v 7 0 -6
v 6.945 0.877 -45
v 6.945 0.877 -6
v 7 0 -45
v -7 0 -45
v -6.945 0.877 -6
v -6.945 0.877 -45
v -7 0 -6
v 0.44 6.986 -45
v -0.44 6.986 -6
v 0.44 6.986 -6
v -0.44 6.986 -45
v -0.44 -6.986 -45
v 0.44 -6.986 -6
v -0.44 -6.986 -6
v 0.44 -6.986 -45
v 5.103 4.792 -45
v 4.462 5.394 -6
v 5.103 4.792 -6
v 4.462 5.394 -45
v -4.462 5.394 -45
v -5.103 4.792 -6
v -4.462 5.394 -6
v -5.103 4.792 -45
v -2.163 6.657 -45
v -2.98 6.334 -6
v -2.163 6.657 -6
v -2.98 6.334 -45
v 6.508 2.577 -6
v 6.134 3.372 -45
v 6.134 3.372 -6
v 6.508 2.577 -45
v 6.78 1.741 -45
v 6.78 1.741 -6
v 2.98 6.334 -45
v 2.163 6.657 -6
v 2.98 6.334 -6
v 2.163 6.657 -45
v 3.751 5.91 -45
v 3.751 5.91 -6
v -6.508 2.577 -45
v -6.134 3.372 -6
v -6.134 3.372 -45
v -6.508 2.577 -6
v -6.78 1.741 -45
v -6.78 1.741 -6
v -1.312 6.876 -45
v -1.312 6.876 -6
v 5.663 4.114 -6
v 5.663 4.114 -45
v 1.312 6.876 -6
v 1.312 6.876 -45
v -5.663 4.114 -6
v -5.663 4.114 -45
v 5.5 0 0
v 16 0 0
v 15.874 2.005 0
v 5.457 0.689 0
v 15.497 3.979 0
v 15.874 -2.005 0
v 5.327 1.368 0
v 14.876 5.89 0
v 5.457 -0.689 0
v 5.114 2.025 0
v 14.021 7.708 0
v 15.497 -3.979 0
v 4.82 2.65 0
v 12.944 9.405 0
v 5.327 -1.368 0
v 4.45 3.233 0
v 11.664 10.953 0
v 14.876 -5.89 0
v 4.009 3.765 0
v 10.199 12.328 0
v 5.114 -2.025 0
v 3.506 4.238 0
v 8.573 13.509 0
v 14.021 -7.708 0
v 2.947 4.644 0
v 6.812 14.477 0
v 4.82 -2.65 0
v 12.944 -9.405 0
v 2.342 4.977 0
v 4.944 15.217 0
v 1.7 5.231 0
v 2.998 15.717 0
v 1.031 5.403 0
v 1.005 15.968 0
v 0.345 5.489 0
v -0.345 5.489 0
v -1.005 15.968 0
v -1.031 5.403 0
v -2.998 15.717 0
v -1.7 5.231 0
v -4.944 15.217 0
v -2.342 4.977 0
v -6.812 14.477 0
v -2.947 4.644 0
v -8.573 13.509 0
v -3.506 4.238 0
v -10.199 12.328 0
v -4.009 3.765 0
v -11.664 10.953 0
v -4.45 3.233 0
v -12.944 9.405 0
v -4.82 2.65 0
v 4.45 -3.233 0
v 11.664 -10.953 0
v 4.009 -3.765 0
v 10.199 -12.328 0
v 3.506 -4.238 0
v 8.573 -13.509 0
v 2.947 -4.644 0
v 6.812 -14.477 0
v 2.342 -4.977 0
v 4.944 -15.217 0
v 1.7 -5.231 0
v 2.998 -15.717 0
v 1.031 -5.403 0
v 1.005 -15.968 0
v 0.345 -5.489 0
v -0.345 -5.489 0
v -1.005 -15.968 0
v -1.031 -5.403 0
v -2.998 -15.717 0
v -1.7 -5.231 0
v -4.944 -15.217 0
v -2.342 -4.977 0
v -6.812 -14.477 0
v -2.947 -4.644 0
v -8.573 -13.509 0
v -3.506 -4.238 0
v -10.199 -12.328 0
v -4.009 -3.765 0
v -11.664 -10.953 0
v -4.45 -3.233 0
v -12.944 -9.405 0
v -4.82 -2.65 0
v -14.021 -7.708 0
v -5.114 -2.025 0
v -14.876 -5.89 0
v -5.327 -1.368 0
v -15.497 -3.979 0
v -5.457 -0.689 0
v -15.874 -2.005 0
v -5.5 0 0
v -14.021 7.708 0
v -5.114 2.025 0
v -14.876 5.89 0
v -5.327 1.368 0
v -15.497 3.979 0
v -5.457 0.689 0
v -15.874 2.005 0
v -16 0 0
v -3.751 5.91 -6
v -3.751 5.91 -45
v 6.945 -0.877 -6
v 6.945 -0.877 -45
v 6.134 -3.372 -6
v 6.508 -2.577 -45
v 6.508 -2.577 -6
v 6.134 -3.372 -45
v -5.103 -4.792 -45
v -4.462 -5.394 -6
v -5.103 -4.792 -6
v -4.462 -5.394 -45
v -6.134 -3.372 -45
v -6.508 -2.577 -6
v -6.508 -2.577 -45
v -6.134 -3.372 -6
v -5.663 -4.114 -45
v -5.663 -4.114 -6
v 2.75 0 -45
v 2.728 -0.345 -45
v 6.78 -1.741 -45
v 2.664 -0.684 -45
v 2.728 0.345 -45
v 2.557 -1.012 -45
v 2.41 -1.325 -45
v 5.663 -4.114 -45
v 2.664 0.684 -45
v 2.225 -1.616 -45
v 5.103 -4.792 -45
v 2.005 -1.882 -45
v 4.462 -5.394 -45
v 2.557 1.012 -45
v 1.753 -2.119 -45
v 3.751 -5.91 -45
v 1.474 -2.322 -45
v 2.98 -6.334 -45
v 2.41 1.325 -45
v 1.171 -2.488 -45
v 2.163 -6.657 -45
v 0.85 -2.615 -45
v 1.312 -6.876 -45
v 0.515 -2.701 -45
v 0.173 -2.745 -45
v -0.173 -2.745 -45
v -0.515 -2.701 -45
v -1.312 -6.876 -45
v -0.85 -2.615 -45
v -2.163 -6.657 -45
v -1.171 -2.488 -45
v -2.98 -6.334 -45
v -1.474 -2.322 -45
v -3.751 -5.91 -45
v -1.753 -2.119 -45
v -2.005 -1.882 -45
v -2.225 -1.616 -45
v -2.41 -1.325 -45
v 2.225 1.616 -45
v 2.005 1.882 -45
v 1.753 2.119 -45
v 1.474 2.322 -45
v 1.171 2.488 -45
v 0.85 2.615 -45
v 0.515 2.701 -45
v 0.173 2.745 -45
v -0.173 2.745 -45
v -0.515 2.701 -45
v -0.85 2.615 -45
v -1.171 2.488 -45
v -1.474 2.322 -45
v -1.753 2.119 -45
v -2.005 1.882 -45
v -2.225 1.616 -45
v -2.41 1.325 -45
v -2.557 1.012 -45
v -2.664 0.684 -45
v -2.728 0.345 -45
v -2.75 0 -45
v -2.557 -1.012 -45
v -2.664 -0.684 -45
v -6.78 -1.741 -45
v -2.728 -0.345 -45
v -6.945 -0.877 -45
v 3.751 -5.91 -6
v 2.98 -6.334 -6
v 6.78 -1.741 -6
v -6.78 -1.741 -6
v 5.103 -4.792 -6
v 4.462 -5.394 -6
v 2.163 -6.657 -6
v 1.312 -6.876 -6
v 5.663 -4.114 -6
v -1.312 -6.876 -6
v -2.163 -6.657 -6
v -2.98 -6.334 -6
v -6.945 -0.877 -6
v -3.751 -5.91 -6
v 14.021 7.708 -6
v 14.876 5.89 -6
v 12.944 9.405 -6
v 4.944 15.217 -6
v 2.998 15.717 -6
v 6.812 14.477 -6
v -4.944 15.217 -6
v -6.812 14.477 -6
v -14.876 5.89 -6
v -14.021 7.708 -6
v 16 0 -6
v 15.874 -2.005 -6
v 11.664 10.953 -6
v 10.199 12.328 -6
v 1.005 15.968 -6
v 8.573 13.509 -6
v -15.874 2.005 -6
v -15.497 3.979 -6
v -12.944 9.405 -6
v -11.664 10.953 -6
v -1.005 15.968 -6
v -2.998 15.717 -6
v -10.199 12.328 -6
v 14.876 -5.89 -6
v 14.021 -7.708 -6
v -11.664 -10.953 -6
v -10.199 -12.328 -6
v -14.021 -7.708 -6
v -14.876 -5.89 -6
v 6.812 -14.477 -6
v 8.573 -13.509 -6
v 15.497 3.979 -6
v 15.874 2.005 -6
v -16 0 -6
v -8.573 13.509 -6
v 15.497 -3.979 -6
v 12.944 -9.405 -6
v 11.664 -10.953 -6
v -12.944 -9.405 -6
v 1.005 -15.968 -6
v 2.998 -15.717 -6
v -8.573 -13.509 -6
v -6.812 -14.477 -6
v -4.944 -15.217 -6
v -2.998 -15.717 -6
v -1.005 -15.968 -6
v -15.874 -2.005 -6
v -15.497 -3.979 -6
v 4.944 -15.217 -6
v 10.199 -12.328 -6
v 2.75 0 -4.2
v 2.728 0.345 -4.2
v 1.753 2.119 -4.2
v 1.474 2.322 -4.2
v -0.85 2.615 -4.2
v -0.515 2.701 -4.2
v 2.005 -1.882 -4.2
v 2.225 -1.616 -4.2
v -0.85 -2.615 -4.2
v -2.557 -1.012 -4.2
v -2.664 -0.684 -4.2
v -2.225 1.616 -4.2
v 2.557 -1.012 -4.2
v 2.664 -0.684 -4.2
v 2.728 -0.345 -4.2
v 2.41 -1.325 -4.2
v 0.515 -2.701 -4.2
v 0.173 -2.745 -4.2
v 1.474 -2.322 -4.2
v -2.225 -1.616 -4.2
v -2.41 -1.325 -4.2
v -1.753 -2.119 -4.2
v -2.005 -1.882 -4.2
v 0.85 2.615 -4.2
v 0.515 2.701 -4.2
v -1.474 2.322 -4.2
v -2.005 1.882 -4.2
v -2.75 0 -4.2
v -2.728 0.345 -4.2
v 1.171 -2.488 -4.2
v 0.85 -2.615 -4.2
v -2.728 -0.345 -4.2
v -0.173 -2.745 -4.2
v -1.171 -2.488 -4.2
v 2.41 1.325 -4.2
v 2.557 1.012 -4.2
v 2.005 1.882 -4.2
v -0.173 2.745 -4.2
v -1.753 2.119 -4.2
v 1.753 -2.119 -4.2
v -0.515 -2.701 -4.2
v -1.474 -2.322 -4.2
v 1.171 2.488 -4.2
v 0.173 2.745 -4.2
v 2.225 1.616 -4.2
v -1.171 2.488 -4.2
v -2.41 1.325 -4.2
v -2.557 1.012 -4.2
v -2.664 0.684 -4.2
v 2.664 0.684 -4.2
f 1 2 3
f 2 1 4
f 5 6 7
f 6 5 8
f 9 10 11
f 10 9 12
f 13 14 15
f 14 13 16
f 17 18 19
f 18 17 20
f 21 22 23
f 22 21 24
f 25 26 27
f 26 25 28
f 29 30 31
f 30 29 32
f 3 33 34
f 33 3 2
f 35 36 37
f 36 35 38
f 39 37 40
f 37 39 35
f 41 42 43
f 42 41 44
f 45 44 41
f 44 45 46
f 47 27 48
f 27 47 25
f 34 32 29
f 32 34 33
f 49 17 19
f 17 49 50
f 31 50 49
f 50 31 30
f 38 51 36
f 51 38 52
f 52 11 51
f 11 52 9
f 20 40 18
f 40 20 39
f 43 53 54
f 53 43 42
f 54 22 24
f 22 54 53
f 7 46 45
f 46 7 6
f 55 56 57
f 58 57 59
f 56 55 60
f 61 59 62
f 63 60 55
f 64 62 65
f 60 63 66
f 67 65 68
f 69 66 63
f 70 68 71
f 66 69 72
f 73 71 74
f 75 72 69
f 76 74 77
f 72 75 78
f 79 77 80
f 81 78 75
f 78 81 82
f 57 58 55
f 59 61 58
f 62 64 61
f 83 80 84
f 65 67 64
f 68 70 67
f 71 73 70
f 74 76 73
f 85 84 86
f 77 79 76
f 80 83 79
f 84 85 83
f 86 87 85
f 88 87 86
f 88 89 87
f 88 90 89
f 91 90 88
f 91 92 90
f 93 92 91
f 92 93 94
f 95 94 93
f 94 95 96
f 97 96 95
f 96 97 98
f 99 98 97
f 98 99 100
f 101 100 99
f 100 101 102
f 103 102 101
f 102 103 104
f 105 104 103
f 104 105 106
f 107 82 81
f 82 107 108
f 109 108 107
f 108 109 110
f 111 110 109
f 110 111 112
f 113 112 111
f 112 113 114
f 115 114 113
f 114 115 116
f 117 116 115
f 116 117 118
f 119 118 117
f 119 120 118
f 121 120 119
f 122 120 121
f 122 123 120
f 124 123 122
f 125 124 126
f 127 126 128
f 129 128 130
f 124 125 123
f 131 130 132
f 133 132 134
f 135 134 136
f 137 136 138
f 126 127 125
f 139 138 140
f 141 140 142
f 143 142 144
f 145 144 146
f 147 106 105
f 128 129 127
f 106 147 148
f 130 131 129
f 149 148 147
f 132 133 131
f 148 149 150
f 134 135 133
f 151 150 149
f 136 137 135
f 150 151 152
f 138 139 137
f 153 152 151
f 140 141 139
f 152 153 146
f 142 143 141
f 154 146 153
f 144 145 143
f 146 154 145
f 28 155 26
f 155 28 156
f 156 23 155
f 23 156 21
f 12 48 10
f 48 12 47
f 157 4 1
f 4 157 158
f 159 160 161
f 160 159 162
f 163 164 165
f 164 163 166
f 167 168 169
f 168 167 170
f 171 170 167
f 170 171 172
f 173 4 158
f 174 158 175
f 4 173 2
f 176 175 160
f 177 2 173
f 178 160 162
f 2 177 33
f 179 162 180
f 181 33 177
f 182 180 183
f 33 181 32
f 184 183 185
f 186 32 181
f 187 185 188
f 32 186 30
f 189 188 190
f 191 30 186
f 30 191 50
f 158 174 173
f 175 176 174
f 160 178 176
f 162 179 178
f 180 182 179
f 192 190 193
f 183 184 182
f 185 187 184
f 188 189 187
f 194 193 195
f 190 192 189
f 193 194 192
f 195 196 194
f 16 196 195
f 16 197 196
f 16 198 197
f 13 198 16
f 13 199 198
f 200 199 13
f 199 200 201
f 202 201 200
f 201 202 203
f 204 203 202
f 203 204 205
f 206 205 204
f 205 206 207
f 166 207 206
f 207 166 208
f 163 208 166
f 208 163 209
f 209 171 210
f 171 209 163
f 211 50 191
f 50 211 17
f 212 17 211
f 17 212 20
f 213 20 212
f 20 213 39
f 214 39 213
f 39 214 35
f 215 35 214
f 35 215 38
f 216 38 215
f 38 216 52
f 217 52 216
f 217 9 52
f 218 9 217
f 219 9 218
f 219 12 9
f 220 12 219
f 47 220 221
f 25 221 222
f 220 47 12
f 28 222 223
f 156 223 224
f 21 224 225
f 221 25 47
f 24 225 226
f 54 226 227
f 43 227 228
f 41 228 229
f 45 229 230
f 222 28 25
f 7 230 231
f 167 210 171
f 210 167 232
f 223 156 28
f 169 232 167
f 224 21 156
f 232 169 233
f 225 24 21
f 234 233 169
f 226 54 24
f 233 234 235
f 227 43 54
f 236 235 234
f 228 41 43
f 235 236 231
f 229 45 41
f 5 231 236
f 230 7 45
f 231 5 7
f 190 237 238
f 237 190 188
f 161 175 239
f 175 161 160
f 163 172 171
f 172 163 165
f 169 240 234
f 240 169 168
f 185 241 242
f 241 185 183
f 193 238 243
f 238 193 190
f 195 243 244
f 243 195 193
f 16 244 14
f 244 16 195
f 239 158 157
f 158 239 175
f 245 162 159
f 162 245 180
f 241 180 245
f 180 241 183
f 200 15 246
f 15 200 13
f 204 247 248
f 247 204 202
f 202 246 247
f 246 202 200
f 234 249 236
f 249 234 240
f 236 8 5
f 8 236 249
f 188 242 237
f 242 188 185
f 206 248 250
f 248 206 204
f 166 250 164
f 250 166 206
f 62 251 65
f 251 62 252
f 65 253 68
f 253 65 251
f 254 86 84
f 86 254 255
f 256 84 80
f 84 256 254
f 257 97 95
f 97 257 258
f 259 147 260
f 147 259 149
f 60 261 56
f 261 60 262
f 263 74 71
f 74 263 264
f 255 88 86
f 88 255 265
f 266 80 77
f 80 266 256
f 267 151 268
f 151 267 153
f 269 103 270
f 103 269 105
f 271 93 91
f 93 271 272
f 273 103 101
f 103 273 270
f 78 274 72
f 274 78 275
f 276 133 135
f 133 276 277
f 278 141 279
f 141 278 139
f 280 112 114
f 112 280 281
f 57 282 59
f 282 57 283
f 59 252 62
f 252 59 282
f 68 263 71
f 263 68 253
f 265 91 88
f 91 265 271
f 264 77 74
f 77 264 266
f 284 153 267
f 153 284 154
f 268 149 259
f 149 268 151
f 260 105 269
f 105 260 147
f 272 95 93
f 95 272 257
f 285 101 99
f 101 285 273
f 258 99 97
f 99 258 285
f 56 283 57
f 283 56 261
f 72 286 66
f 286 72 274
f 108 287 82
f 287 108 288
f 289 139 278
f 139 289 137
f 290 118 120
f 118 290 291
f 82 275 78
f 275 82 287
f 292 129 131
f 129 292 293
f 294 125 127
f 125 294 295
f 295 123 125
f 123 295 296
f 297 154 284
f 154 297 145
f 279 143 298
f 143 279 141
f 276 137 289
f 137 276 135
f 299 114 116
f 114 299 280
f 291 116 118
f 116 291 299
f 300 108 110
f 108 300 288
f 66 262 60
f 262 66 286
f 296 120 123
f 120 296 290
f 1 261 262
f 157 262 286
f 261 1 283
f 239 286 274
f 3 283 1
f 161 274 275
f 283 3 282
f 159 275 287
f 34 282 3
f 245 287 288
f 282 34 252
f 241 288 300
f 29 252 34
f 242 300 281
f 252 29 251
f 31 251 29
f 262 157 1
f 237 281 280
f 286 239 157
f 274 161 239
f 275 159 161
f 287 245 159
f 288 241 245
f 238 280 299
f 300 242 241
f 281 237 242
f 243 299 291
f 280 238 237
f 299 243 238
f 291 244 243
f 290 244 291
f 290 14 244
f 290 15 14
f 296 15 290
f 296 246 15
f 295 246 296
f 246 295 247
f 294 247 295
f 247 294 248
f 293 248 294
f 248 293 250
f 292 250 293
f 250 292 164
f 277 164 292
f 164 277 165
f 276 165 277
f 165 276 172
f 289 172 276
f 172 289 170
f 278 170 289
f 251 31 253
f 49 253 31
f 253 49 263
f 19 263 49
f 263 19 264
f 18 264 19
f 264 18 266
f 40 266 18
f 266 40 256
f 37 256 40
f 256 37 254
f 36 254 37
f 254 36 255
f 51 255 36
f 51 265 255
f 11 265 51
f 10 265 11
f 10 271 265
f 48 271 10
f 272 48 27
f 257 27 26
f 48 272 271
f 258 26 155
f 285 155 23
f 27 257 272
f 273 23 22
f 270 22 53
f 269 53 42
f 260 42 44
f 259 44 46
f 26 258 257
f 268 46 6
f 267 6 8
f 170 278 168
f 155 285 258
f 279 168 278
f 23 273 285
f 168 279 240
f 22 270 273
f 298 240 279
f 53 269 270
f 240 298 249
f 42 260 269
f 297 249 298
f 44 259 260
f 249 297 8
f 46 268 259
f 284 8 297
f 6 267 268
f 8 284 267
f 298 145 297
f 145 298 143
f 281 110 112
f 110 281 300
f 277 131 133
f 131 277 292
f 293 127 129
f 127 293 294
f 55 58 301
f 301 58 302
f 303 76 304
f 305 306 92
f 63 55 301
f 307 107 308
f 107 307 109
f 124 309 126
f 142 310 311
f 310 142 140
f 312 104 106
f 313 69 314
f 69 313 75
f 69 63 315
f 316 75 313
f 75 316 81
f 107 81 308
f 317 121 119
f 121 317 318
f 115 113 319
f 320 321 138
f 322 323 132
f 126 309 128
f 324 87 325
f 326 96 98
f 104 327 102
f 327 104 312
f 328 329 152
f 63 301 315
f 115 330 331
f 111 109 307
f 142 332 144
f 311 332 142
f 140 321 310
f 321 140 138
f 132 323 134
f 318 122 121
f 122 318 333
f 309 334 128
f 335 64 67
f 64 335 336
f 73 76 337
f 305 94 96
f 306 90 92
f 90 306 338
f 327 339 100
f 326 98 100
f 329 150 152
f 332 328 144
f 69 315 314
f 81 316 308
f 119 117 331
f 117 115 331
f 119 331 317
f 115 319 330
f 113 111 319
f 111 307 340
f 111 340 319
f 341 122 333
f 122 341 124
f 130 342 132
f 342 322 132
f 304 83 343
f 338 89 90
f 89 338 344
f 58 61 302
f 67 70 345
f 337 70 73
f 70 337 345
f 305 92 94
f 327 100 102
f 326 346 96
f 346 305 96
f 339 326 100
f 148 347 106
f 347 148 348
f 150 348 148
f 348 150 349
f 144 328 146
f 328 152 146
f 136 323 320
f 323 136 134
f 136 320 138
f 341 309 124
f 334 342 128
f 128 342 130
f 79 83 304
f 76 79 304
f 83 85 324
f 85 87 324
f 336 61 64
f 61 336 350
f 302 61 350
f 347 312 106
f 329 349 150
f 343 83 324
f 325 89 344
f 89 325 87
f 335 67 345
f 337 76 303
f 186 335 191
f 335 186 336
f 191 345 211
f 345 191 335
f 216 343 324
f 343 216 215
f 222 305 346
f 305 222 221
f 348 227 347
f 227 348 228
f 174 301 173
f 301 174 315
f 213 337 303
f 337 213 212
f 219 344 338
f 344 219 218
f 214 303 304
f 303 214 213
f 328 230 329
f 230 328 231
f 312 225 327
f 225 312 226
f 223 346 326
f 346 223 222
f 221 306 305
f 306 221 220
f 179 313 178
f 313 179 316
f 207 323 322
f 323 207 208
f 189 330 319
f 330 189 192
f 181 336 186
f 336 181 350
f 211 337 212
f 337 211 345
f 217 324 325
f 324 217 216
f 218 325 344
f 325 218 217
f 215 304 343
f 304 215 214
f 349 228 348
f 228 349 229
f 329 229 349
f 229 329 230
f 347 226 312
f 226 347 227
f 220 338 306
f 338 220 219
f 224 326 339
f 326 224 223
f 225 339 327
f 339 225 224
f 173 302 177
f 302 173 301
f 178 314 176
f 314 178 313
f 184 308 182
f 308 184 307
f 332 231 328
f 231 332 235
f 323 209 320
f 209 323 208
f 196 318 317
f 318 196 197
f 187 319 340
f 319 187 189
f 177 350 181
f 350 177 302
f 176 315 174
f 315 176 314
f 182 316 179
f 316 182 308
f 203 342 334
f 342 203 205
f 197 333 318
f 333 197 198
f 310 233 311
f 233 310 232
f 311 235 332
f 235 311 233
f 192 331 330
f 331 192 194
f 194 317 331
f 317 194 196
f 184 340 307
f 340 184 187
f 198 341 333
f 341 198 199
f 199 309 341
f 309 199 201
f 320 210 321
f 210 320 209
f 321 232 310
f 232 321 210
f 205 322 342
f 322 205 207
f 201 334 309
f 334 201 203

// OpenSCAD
$fn = 50;


difference() {
	union() {
		translate(v = [0, 0, -45.0000000000]) {
			cylinder(h = 45, r = 7.0000000000);
		}
		translate(v = [0, 0, -6.0000000000]) {
			cylinder(h = 6, r = 16.0000000000);
		}
	}
	union() {
		translate(v = [0, 0, 0]) {
			rotate(a = [0, 0, 0]) {
				difference() {
					union() {
						#translate(v = [0, 0, -45.0000000000]) {
							cylinder(h = 45, r = 2.2500000000);
						}
						#translate(v = [0, 0, -4.2000000000]) {
							cylinder(h = 4.2000000000, r = 7.0000000000, r1 = 2.7500000000, r2 = 5.5000000000);
						}
						#translate(v = [0, 0, -45.0000000000]) {
							cylinder(h = 45, r = 2.7500000000);
						}
						#translate(v = [0, 0, -45.0000000000]) {
							cylinder(h = 45, r = 2.2500000000);
						}
					}
					union();
				}
			}
		}
	}
}
